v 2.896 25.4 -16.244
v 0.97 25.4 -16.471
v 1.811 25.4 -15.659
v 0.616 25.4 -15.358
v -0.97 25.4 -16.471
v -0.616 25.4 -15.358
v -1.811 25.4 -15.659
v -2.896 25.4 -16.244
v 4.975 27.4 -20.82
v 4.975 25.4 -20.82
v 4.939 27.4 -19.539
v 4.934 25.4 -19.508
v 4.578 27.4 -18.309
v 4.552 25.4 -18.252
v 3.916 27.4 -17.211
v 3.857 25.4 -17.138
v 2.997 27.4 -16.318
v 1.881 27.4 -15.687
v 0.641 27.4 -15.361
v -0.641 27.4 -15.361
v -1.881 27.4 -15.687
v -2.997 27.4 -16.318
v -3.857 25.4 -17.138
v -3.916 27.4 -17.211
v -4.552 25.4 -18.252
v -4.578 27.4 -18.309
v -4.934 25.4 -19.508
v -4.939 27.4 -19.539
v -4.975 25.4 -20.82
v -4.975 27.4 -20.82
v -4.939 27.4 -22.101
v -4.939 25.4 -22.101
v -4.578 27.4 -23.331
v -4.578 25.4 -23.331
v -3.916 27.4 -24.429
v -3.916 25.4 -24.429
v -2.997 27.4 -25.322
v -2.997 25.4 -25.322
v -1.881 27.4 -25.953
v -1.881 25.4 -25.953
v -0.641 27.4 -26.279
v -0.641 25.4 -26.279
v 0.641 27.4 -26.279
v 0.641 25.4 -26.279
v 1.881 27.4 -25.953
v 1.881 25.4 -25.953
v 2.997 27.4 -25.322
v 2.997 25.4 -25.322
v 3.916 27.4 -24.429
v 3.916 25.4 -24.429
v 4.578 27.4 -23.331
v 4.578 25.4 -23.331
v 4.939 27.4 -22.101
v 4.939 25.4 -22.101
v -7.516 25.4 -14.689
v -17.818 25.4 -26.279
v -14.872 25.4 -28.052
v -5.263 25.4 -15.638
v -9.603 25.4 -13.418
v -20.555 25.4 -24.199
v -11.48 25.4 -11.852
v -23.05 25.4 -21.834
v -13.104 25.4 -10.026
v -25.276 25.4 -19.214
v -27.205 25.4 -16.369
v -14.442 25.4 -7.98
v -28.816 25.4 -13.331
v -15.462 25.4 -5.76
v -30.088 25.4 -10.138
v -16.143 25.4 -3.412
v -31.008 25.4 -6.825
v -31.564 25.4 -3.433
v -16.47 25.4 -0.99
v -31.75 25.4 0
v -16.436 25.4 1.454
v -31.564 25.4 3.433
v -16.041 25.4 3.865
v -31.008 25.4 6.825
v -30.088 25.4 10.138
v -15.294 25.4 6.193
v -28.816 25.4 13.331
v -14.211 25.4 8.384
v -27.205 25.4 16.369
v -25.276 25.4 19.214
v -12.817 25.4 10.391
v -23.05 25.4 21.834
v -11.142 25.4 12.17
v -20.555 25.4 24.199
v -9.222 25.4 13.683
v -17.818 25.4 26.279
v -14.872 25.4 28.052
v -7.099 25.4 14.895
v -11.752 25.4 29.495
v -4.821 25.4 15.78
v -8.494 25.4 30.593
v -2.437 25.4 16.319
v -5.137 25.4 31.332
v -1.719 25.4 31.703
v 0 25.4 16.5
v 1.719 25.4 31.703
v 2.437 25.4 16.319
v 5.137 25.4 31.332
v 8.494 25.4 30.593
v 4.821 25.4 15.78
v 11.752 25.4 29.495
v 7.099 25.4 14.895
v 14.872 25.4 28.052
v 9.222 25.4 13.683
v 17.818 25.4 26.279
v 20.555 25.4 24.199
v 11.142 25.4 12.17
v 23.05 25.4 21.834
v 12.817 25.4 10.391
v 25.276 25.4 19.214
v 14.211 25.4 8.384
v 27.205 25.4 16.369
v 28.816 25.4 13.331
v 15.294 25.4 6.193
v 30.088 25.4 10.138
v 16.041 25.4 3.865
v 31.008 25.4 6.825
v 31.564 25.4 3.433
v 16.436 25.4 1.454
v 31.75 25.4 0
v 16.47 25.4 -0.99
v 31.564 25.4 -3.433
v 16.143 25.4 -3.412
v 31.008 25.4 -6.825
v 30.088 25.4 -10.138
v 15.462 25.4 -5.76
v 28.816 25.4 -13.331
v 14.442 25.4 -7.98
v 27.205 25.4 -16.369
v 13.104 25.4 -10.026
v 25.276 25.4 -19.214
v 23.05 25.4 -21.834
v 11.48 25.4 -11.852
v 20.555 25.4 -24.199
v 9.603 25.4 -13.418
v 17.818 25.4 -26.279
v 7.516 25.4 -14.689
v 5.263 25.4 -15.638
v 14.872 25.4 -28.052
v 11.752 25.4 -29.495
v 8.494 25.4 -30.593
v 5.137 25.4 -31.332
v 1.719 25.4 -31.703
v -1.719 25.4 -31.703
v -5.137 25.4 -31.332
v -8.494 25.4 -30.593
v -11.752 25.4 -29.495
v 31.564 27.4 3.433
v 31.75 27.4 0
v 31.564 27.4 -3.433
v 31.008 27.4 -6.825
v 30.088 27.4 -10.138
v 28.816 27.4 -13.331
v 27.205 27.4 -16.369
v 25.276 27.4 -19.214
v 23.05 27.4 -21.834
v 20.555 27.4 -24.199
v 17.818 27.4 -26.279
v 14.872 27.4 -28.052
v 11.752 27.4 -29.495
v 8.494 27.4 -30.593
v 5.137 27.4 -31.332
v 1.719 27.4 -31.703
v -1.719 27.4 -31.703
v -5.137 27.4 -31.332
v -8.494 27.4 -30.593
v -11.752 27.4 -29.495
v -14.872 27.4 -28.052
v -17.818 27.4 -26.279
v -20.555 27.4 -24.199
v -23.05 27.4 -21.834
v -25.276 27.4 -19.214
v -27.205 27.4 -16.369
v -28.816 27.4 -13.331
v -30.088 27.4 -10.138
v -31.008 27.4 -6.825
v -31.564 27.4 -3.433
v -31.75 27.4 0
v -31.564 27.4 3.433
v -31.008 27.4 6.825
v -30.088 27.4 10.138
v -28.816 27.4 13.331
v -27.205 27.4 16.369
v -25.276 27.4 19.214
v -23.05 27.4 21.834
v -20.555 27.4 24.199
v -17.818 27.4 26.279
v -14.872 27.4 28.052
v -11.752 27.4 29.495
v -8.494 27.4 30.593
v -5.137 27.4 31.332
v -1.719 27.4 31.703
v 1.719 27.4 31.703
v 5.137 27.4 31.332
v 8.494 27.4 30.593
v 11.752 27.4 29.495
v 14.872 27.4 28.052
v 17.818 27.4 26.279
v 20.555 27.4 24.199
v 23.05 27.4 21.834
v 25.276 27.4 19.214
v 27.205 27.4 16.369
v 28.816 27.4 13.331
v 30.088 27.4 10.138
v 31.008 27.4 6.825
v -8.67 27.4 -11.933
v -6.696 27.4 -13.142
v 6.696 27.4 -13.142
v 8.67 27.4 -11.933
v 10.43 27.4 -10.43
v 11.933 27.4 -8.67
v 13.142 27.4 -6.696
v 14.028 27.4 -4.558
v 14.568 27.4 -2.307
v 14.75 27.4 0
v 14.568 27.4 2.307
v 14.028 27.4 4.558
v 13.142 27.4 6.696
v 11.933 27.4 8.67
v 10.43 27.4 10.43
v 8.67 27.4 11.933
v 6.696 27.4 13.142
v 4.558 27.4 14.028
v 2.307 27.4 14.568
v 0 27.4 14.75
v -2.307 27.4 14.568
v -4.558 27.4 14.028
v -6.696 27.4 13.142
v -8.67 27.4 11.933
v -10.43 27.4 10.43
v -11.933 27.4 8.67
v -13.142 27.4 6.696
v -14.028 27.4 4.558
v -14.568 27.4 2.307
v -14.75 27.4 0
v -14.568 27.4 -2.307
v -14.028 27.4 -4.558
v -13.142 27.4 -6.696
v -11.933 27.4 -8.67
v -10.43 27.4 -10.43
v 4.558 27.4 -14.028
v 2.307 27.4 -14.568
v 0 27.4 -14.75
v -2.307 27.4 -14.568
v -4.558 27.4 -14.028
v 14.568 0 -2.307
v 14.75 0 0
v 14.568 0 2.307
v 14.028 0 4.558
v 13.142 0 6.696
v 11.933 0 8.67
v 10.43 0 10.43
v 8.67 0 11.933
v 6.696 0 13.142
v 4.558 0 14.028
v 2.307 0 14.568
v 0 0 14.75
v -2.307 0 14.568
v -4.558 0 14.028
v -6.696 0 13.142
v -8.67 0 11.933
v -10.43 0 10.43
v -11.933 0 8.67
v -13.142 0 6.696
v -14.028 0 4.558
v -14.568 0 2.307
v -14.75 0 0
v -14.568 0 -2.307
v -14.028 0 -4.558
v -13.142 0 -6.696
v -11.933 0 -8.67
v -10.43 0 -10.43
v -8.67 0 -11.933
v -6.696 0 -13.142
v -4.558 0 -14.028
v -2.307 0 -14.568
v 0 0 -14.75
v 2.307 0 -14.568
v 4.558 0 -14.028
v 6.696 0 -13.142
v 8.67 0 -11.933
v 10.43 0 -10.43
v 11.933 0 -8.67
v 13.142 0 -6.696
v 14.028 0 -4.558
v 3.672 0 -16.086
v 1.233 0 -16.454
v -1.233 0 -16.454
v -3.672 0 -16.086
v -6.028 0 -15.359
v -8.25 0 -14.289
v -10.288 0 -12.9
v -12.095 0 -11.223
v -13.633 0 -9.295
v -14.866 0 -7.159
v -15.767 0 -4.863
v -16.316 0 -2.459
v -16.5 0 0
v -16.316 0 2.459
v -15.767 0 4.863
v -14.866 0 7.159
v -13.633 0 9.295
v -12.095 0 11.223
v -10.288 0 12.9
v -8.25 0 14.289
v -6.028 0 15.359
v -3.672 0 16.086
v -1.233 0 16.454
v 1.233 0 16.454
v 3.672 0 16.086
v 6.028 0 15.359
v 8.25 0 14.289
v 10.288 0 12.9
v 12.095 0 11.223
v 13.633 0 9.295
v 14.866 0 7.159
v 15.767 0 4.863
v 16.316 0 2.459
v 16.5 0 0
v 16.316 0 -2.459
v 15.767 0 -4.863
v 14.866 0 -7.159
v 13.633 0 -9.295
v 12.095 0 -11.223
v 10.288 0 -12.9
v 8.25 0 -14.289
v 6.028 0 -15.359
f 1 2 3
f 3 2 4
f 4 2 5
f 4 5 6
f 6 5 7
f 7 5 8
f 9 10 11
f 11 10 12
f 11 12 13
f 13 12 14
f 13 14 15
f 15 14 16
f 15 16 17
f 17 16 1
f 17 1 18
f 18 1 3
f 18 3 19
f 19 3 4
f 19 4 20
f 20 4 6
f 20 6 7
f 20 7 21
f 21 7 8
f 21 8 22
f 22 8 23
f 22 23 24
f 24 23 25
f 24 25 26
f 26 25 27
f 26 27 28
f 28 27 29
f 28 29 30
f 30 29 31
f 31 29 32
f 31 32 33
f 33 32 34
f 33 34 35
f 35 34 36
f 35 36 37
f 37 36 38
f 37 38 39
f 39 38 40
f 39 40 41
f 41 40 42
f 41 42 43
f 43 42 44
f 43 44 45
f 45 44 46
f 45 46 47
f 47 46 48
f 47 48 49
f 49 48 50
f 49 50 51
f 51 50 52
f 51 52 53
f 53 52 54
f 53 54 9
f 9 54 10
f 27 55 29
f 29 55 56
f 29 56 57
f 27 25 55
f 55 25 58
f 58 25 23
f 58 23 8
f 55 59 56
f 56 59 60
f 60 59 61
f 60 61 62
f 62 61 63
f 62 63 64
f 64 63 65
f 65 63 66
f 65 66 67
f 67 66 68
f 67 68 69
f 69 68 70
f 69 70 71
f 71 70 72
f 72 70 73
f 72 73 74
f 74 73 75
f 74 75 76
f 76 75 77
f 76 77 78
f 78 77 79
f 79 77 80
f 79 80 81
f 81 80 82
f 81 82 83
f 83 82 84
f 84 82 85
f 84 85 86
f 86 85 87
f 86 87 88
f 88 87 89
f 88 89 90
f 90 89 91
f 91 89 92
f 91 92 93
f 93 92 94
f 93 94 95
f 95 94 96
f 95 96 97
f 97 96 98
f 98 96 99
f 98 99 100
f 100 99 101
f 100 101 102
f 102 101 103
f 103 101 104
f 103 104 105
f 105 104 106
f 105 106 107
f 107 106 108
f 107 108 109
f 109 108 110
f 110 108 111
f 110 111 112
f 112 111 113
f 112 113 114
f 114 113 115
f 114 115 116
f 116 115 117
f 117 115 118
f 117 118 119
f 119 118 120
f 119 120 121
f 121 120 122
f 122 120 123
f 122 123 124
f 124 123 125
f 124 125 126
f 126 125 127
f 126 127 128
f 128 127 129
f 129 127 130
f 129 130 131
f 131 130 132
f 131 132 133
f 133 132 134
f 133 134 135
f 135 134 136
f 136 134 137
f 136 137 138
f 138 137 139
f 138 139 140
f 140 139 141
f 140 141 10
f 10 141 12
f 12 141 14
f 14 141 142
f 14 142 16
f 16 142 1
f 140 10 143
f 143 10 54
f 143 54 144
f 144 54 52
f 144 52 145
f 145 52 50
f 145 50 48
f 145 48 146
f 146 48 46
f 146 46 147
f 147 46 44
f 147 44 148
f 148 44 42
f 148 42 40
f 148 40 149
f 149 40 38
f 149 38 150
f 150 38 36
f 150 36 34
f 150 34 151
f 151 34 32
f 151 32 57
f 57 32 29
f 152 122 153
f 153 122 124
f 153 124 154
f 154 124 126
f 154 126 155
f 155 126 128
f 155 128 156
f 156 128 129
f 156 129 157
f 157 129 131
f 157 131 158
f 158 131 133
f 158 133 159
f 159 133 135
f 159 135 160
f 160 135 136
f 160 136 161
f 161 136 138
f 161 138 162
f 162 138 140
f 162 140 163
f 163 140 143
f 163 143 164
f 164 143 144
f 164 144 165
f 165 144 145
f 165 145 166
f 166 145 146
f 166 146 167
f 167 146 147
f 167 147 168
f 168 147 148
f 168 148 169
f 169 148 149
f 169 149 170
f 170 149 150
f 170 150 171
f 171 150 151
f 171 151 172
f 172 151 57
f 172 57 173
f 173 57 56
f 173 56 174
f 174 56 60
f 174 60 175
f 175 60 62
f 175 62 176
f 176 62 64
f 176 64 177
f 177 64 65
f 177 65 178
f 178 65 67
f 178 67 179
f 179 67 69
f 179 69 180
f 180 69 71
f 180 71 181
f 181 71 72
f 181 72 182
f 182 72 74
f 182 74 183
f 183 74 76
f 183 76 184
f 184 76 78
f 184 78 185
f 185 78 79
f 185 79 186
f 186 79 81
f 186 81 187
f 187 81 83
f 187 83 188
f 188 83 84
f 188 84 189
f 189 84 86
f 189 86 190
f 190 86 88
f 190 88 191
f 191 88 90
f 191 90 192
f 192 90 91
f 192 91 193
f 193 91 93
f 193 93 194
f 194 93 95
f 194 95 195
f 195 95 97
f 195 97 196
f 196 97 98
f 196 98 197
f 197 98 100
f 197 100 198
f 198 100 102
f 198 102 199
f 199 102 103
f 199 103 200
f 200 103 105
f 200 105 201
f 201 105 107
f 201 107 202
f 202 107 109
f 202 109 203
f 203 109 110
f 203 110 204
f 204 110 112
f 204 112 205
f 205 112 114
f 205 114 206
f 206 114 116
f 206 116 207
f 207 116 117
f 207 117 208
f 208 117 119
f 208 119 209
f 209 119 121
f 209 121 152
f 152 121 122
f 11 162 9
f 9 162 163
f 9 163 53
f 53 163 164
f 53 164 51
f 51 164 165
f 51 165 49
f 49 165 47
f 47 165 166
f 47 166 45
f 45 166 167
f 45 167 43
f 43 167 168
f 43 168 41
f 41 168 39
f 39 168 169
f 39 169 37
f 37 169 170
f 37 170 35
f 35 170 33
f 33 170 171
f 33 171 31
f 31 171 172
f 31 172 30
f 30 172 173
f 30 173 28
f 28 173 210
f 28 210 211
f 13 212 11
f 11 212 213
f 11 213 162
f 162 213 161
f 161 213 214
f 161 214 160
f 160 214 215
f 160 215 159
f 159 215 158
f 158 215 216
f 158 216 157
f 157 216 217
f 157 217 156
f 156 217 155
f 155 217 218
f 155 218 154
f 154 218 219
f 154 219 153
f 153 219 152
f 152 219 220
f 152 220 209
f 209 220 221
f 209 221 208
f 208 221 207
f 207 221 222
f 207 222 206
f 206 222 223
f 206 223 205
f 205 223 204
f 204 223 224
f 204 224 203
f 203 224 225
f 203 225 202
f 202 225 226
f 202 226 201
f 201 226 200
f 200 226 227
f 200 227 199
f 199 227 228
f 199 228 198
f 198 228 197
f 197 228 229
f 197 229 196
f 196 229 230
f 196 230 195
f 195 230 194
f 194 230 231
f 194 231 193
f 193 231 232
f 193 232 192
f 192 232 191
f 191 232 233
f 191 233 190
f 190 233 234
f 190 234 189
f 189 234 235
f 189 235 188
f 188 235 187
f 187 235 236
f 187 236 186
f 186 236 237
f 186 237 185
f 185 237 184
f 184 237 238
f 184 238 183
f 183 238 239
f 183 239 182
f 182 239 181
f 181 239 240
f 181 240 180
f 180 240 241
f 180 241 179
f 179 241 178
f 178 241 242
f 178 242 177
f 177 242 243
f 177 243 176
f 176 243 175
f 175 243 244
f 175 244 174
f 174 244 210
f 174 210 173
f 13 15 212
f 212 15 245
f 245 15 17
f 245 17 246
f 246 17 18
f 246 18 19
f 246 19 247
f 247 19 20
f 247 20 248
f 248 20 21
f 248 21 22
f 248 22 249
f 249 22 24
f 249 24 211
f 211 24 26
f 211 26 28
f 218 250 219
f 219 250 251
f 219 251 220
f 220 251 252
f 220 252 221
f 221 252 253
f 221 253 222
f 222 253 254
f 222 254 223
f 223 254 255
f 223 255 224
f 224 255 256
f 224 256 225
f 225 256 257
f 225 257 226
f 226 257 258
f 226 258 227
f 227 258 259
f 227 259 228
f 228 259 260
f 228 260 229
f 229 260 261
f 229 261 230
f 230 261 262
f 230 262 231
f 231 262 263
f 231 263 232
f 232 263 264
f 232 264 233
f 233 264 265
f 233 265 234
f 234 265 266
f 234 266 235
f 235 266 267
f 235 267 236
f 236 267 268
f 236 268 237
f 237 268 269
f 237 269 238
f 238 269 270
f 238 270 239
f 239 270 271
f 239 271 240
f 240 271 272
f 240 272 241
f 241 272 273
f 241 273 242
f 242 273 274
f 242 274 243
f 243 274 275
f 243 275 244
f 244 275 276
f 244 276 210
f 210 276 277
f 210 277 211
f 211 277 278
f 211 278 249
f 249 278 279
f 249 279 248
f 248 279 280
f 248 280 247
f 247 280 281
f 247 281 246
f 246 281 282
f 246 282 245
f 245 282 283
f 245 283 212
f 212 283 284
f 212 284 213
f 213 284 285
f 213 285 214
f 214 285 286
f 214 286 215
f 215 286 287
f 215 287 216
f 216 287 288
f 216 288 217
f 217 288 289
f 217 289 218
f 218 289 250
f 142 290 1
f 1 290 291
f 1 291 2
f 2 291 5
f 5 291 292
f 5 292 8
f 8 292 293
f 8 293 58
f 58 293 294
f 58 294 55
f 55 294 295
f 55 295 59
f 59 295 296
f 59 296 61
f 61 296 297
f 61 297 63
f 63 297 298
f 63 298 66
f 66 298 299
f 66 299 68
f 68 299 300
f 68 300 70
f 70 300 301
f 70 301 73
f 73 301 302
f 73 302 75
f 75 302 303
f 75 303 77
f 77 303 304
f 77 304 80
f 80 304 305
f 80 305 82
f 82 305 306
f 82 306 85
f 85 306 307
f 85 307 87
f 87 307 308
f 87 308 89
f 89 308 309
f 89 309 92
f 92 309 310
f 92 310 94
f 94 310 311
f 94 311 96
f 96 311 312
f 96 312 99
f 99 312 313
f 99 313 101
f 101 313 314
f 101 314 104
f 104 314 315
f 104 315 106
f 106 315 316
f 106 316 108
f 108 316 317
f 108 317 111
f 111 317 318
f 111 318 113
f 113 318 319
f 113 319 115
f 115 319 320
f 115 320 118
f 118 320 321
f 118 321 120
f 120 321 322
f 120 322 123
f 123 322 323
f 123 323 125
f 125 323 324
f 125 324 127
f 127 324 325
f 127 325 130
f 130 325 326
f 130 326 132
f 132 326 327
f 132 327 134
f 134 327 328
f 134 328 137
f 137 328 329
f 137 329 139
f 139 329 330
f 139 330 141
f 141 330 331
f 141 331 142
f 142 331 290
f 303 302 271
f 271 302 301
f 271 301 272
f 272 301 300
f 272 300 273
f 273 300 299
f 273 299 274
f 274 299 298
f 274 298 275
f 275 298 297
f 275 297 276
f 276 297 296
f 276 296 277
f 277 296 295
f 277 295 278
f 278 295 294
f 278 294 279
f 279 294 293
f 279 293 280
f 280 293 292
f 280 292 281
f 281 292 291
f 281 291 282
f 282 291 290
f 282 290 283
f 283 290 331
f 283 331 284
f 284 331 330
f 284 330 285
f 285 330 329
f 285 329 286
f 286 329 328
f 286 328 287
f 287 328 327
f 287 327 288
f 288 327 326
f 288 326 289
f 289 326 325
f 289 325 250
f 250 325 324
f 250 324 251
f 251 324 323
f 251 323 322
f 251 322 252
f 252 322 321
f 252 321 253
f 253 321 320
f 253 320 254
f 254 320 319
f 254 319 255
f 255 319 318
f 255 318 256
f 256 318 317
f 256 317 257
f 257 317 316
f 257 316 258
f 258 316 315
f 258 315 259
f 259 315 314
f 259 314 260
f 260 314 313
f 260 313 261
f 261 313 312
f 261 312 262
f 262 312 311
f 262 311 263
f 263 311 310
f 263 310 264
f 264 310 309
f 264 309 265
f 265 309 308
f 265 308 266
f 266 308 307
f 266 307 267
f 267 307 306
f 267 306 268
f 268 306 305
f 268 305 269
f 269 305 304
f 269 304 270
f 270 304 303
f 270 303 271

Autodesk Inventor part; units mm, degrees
ref_plane "YZ Plane" through (0, 0, 0) normal (1, 0, 0) x (0, 1, 0)
ref_plane "XZ Plane" through (0, 0, 0) normal (0, 1, 0) x (-1, 0, 0)
ref_plane "XY Plane" through (0, 0, 0) normal (0, 0, 1) x (1, 0, 0)
sketch "Sketch1" plane through (0, 0, 0) normal (0, 1, 0) x (-1, 0, 0)
  circle A0 centre (0, 0) radius 16.5
  circle A1 centre (0, 0) radius 14.75
  dimension "d0" = 33
  dimension "d1" = 29.5
extrude "Extrusion1" add sketch "Sketch1" along normal blind 25.4
sketch "Sketch2" plane through (0, 25.4, 0) normal (0, 1, 0) x (1, 0, 0)
  circle A0 centre (0, 0) radius 14.75
  circle A1 centre (0, 0) radius 31.75
  circle A2 centre (0, 0) radius 14.75 projected
  dimension "d5" = 63.5
  dimension "d6" = 0
extrude "Extrusion2" add sketch "Sketch2" along normal blind 2
sketch "Sketch3" plane through (0, 25.4, 0) normal (0, -1, 0) x (1, 0, 0)
  circle A0 centre (0, -20.32) radius 5
  circle A1 centre (0, -21.32) radius 5
  line L0 (0, -20.32) -> (0, -21.32)
  line L1 (5, -20.32) -> (5, -21.32)
  line L2 (-5, -20.32) -> (-5, -21.32)
  point P0 (0, 0)
  point P1 (4.9749, -20.82)
  point P2 (-4.9749, -20.82)
  dimension "d9" = 10
  dimension "d10" = 1
  dimension "d11" = 20.32
extrude "Extrusion3" cut sketch "Sketch3" against normal blind 2 contours A0 A1 | A1 A0 | A0 A1
properties part number "O-Ring"
